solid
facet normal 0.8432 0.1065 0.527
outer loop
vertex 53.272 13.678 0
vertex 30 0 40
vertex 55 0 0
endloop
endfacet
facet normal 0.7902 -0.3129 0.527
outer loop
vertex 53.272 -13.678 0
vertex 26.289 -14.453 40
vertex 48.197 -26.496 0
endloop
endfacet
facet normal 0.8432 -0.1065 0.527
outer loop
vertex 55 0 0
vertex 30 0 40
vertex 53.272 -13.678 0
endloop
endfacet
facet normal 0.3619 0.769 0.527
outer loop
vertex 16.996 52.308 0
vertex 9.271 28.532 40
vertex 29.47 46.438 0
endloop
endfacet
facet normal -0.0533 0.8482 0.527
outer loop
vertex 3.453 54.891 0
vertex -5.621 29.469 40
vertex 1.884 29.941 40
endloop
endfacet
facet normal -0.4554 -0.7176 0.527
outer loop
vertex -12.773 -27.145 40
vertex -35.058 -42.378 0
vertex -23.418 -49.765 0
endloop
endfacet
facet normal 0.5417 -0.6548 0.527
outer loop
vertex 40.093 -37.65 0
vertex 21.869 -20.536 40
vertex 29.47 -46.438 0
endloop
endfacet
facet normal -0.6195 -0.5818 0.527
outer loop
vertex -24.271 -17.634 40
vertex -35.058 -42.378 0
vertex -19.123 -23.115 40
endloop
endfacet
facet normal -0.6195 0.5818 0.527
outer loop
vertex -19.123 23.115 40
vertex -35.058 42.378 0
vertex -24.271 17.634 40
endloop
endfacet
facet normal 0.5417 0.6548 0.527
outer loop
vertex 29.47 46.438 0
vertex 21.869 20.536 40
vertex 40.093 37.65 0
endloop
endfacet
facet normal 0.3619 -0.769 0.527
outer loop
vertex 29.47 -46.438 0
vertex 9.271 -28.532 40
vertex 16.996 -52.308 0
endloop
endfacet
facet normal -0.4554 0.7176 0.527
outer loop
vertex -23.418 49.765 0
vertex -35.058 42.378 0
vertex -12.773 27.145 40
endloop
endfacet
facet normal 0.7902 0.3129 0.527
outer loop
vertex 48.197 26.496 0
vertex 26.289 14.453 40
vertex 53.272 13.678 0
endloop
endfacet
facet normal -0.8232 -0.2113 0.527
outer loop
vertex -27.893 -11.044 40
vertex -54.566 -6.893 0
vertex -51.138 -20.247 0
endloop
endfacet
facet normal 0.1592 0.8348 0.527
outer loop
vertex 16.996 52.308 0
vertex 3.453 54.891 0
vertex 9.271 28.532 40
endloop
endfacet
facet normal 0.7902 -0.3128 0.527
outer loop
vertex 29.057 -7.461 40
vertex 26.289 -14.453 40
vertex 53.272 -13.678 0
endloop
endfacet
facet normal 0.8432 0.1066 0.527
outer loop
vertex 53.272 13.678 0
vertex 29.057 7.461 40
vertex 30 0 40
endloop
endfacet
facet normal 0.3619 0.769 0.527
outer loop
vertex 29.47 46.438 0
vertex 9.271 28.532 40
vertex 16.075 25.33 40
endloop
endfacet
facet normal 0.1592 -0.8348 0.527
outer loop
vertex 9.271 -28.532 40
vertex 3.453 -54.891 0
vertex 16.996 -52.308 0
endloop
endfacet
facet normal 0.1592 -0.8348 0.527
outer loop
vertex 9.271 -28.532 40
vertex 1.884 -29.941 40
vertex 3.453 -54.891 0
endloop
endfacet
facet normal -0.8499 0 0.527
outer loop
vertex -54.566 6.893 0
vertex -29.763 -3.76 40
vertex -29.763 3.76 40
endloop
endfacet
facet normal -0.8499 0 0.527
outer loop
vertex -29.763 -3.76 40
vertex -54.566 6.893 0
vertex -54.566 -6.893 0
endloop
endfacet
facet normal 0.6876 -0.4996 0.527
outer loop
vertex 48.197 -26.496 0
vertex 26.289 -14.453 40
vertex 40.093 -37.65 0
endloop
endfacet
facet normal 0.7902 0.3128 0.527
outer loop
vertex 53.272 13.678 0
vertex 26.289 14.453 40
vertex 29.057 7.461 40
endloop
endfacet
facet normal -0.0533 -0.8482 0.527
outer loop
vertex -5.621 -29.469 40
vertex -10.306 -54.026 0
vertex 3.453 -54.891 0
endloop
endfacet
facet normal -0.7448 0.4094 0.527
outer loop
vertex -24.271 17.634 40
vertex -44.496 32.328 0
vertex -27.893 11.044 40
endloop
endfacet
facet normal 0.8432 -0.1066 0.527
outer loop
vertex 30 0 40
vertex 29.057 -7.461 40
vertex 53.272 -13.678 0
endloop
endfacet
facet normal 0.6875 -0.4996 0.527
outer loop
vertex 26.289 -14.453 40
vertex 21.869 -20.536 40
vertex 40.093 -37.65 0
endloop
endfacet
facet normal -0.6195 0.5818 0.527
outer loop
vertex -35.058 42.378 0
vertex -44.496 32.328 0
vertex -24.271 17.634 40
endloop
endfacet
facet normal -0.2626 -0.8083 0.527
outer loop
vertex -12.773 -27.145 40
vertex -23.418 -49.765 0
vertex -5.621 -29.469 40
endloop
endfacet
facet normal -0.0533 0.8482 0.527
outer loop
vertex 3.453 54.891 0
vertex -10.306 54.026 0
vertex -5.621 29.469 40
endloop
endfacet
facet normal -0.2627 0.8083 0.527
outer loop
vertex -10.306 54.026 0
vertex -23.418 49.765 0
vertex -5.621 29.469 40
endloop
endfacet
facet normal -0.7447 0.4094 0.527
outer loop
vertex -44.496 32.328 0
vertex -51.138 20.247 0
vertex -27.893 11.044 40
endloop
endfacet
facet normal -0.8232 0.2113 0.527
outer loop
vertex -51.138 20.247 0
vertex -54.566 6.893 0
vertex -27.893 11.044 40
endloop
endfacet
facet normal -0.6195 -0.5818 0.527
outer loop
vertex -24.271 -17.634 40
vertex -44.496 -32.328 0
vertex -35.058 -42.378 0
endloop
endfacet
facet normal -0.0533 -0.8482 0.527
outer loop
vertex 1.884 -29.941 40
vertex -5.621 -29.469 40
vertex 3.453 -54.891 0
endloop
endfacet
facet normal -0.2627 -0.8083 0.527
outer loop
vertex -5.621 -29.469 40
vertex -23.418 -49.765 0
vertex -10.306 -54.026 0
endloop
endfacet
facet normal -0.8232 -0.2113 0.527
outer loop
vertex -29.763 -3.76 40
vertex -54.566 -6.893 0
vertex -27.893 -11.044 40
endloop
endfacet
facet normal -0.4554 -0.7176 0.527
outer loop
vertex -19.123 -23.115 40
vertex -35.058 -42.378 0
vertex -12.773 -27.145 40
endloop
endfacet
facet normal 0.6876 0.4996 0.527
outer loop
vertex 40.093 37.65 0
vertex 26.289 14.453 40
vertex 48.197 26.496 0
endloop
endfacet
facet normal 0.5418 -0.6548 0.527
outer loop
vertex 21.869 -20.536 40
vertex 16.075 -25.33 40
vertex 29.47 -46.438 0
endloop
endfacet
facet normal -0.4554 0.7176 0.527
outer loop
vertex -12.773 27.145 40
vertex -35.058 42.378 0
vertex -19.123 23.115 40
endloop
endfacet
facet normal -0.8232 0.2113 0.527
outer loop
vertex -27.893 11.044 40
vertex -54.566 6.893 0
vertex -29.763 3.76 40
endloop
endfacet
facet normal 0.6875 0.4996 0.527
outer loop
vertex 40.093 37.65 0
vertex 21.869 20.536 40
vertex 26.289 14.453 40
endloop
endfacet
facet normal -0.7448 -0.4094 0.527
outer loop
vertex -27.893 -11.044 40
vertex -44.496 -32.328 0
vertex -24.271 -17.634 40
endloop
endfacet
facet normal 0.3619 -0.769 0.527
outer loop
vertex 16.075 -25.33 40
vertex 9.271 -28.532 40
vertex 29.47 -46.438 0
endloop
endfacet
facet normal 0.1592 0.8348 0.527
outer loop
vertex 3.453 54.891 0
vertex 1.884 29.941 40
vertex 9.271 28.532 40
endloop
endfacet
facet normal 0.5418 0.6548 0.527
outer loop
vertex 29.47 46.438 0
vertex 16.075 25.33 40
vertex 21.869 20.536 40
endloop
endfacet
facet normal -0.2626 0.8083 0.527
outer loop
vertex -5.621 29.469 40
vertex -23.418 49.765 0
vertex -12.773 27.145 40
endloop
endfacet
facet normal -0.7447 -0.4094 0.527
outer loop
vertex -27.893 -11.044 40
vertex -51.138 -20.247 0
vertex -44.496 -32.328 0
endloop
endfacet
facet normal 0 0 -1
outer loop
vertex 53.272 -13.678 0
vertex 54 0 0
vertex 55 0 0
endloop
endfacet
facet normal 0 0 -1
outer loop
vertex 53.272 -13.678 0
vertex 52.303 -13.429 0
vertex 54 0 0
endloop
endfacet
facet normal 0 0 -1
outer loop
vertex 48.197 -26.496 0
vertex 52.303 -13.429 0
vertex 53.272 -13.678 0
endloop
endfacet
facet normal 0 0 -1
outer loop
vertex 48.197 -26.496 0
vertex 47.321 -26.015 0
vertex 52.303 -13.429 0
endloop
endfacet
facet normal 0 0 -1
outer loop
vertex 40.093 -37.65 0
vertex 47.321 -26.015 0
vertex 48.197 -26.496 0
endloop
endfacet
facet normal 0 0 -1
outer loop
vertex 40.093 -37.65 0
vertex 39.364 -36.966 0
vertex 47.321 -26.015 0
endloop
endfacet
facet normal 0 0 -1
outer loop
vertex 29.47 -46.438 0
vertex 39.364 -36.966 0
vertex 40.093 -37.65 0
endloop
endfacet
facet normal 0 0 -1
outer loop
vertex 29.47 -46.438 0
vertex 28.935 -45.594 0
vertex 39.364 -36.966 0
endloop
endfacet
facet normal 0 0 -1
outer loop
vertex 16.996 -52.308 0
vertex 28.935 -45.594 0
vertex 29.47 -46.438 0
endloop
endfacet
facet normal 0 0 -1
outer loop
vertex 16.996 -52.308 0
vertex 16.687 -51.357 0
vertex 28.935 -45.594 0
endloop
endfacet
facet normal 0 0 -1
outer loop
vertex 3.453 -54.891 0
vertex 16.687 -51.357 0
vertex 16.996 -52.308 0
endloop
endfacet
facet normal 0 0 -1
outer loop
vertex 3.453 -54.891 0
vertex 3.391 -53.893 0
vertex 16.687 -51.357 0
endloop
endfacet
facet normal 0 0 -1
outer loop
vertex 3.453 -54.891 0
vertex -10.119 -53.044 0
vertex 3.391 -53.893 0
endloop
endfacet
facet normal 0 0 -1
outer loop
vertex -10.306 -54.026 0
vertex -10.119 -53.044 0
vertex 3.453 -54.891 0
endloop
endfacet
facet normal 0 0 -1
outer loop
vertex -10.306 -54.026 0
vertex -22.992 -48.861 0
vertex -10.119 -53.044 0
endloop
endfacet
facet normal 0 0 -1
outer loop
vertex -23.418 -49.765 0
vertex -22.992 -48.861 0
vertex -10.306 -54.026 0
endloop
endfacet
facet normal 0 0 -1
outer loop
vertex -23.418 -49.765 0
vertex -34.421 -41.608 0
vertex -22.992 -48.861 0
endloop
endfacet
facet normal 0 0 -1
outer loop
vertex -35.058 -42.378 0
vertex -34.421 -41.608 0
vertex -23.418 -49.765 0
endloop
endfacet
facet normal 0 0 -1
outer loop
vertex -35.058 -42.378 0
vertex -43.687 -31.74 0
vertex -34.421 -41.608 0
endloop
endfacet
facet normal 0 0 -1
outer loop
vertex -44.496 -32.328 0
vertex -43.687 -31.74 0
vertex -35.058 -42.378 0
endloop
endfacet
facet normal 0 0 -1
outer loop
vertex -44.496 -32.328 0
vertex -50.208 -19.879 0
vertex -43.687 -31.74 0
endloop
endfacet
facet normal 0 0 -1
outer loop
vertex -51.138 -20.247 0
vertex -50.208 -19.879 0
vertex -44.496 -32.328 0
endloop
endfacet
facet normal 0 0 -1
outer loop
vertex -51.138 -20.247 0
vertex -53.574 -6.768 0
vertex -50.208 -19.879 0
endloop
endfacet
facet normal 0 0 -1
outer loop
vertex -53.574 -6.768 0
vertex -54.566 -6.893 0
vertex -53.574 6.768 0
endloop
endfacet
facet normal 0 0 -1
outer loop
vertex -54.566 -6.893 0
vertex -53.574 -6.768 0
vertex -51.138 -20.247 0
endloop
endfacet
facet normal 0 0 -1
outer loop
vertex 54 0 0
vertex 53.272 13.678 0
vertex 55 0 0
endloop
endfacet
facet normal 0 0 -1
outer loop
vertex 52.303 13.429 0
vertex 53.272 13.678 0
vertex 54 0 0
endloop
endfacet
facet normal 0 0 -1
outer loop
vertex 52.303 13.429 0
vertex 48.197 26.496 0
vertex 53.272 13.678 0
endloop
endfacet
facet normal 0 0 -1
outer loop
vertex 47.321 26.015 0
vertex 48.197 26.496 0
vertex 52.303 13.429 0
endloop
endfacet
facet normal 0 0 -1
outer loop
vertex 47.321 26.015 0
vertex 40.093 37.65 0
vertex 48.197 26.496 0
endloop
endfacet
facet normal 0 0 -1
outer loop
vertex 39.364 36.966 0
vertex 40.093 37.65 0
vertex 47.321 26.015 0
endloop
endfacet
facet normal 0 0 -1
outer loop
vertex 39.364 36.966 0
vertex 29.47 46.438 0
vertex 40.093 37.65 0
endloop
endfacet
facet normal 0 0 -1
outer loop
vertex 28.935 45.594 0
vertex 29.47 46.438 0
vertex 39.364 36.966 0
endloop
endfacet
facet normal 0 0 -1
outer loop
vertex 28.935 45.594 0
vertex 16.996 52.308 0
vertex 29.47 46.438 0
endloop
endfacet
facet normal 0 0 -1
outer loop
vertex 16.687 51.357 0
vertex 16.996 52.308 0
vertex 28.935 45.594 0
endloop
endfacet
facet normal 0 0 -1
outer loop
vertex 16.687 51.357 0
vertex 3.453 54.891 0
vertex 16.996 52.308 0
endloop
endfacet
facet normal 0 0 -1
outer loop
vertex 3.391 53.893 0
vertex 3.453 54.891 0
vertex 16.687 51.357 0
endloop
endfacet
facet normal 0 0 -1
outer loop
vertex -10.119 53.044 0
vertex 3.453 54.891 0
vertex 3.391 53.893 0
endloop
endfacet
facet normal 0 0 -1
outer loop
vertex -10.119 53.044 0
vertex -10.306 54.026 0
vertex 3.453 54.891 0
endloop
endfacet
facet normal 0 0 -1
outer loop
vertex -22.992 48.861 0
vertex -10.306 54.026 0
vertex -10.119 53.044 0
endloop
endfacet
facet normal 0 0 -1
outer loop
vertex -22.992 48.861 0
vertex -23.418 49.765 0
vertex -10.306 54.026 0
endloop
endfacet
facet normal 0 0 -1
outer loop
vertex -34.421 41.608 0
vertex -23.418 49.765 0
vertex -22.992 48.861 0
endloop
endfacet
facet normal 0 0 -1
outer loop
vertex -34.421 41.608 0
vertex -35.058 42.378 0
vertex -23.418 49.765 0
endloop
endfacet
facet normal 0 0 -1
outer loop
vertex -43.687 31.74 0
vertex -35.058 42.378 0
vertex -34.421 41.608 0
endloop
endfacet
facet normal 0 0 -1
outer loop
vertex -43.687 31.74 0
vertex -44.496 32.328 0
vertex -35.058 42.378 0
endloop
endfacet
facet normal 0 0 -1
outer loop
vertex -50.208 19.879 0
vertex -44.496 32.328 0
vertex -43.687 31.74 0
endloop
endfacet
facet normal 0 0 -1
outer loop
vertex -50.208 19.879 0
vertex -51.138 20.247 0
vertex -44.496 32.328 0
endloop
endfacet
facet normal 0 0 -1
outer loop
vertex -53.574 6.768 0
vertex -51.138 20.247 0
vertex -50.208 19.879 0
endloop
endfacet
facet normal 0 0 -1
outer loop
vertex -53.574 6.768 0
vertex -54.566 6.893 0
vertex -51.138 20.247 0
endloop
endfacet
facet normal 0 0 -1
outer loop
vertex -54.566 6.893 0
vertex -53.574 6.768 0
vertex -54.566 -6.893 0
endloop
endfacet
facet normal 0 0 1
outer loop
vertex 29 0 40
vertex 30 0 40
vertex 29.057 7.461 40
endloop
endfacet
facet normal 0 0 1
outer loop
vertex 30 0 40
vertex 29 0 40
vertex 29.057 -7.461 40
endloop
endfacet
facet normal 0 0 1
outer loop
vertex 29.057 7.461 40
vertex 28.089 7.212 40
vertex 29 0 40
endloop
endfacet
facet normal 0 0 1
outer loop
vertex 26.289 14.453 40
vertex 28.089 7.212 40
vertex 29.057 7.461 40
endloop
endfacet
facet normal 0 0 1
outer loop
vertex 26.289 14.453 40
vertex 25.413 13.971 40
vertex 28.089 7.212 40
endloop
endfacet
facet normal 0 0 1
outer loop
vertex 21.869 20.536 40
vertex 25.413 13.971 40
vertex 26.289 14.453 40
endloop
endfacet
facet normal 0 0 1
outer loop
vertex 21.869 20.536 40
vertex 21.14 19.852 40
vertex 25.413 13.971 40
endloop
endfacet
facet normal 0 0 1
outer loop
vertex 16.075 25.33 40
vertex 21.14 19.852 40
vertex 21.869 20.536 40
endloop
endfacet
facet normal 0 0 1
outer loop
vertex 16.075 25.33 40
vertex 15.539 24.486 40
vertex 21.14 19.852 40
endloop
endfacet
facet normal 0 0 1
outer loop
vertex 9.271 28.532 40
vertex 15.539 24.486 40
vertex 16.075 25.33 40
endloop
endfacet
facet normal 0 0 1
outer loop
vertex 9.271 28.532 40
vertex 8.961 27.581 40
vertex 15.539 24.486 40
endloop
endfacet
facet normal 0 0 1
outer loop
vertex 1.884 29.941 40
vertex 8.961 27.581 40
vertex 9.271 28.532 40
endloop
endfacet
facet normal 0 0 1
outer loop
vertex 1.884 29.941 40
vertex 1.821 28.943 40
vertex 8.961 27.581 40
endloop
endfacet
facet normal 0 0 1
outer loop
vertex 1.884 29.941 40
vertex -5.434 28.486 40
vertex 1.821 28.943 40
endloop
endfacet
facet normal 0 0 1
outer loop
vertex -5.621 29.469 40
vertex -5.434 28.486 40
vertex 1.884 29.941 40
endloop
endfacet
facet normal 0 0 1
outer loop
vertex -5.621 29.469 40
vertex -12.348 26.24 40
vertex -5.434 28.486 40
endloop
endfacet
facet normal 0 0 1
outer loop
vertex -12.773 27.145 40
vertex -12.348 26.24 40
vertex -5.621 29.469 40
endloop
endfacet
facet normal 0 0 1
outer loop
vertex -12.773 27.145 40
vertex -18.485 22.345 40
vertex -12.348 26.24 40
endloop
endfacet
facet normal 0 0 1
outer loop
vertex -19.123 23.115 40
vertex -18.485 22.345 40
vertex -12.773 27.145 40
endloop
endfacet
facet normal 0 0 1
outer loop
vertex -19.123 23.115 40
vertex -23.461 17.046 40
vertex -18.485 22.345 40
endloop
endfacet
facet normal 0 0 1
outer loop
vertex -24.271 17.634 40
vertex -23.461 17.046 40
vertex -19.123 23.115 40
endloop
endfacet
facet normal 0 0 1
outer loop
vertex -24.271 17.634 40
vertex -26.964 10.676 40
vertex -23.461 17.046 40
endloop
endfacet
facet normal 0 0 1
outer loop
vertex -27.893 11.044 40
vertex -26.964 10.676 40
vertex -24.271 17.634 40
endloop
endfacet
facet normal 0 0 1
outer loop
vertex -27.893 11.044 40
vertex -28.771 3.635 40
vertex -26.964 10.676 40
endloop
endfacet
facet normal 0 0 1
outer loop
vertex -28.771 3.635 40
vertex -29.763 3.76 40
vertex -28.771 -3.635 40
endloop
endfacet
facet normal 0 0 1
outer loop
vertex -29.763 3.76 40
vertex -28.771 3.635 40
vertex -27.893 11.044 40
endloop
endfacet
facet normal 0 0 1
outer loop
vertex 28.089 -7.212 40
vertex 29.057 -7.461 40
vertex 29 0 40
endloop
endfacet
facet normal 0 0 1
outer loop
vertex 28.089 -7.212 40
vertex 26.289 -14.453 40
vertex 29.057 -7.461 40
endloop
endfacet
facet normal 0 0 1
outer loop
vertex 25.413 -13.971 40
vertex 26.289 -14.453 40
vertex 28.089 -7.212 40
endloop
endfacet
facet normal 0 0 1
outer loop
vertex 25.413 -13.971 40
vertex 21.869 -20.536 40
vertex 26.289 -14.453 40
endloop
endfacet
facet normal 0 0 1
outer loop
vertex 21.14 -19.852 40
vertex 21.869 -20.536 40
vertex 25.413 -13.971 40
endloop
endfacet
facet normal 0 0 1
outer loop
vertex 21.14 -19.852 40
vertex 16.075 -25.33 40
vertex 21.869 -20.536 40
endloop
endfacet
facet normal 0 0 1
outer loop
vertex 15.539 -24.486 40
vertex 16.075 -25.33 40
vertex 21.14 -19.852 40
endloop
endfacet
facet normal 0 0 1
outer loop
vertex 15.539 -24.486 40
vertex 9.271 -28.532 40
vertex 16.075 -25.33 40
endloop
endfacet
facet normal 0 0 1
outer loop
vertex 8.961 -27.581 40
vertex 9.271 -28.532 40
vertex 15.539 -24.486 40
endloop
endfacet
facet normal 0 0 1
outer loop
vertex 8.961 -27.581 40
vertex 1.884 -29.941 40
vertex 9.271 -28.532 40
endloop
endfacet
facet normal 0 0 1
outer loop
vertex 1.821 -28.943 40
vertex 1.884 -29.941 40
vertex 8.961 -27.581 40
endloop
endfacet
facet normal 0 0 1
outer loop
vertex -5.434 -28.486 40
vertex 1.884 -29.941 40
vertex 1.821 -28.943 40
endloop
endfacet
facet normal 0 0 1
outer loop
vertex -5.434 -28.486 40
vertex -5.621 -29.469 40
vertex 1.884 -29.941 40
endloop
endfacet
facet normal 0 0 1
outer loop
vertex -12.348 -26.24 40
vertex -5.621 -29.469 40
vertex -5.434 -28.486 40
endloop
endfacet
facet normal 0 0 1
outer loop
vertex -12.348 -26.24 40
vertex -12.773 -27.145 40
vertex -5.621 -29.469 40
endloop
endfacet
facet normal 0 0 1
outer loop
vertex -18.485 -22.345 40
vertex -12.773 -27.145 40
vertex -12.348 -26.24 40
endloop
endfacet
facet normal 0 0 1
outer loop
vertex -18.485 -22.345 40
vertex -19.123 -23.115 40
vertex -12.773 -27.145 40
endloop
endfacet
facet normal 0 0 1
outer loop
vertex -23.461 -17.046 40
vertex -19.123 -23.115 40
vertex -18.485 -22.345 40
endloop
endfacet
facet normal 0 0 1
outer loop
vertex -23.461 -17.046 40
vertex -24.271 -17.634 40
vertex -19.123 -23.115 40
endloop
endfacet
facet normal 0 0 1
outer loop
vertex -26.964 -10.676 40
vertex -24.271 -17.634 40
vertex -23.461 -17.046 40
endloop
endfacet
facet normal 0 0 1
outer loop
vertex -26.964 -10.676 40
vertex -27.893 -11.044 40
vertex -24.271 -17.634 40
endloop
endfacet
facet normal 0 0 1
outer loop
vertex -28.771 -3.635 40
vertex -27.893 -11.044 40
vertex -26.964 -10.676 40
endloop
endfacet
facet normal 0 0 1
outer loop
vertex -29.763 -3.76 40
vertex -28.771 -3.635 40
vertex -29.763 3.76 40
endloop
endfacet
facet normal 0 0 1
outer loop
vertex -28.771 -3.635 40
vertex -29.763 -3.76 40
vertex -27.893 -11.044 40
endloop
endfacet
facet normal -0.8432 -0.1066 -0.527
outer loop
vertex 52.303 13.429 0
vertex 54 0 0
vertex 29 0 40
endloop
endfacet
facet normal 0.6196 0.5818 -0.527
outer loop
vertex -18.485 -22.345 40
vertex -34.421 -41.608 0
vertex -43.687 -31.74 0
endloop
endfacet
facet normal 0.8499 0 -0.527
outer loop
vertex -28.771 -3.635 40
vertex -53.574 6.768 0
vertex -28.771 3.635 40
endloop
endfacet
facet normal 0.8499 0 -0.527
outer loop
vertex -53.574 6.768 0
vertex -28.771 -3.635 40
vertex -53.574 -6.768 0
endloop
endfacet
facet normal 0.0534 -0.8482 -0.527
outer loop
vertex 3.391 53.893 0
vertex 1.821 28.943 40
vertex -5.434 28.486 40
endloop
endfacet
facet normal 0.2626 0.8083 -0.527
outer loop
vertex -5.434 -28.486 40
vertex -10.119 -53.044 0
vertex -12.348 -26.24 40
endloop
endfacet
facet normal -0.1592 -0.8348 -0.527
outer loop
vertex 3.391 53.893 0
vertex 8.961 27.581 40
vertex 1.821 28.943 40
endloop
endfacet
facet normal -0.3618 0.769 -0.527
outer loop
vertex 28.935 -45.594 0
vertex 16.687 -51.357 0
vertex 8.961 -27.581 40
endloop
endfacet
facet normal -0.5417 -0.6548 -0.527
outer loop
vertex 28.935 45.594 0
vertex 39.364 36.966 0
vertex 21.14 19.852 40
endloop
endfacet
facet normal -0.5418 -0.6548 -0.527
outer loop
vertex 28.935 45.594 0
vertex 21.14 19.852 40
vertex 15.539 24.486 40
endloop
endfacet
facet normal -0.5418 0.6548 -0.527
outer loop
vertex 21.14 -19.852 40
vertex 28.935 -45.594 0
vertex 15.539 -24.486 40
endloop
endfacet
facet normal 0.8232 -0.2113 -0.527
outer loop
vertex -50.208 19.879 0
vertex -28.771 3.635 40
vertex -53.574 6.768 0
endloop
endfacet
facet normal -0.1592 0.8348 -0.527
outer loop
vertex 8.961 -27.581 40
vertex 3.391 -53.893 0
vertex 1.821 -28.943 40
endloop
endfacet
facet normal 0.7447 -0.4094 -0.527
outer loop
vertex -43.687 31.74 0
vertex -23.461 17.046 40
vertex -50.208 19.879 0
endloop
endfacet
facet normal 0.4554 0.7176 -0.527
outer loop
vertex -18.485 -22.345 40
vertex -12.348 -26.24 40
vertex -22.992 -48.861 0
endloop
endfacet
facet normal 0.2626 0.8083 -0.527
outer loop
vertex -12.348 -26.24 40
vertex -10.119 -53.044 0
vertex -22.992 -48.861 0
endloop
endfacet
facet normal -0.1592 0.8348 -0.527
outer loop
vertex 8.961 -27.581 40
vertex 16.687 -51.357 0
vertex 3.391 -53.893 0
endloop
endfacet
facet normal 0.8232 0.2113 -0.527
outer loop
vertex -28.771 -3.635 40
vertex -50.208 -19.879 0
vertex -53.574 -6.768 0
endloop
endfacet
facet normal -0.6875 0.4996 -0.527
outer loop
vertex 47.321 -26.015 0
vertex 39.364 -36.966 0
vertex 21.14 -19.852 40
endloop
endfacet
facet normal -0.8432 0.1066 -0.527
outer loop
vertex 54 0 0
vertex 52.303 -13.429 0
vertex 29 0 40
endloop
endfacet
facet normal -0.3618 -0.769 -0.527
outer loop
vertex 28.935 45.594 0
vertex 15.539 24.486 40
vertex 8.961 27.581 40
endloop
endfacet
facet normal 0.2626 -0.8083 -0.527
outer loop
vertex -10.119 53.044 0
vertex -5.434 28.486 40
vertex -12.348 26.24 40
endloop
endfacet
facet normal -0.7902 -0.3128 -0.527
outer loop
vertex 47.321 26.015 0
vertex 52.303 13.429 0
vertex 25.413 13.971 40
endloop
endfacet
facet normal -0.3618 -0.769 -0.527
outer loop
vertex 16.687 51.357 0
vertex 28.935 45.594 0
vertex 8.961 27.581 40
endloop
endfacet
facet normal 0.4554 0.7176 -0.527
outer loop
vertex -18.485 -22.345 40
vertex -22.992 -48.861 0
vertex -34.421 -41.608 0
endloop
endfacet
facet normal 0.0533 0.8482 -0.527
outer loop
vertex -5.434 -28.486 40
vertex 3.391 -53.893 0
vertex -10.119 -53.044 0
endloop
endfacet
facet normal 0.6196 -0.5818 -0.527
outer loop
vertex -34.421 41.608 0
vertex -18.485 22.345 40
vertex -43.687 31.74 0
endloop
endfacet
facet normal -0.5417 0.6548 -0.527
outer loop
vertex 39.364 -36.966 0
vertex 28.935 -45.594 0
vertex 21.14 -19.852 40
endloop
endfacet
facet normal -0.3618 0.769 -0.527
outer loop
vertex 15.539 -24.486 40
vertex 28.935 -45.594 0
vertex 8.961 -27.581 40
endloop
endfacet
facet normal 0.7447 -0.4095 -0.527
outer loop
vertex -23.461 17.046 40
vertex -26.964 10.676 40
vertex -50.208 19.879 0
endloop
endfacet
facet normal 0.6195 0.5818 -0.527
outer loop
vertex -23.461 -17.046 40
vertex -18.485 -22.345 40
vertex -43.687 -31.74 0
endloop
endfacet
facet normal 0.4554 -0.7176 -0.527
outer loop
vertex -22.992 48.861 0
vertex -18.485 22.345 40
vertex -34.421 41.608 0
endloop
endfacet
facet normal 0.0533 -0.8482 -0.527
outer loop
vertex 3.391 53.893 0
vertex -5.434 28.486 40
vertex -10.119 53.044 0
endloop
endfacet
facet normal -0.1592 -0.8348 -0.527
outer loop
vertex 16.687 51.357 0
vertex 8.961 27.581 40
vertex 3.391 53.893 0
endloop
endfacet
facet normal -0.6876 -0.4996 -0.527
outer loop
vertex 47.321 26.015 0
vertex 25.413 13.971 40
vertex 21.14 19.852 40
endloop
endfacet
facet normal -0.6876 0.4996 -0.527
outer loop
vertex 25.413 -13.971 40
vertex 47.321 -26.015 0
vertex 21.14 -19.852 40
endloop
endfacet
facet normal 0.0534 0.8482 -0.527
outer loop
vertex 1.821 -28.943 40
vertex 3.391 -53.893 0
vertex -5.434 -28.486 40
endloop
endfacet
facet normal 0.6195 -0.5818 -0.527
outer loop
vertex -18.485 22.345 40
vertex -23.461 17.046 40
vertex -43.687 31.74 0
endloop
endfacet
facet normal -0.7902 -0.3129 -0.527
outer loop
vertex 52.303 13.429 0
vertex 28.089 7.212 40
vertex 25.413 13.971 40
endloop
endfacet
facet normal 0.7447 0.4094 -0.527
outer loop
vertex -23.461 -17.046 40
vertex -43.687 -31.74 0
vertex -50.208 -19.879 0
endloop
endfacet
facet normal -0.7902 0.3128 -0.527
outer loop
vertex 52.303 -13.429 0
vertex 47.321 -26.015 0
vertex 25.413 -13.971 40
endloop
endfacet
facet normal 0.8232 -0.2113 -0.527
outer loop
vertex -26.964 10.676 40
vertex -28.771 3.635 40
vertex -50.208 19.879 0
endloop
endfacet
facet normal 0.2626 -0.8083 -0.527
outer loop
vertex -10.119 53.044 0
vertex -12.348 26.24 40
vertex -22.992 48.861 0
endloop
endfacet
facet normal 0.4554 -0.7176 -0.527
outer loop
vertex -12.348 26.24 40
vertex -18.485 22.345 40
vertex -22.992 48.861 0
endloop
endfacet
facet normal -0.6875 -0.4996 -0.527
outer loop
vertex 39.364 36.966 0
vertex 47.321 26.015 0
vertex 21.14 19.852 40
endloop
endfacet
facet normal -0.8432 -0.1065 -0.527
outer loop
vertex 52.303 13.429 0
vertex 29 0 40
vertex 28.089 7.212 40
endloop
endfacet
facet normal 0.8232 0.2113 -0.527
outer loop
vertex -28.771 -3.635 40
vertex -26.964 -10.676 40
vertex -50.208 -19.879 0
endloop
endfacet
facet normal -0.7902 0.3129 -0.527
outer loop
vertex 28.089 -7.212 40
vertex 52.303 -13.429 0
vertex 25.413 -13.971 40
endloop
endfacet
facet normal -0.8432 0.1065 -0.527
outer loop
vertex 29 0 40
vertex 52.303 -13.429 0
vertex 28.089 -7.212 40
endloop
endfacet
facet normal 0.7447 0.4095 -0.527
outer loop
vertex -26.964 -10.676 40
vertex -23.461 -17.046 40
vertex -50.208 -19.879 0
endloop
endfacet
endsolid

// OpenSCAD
$fn=25;

difference() {
    difference() {
        difference() {
            cylinder(h=40,r1=55,r2=30);
            cylinder(h=40,r1=54,r2=29);
        }
        circle(r=54);
    }
    translate([0,0,40]) circle(r=29);
}
